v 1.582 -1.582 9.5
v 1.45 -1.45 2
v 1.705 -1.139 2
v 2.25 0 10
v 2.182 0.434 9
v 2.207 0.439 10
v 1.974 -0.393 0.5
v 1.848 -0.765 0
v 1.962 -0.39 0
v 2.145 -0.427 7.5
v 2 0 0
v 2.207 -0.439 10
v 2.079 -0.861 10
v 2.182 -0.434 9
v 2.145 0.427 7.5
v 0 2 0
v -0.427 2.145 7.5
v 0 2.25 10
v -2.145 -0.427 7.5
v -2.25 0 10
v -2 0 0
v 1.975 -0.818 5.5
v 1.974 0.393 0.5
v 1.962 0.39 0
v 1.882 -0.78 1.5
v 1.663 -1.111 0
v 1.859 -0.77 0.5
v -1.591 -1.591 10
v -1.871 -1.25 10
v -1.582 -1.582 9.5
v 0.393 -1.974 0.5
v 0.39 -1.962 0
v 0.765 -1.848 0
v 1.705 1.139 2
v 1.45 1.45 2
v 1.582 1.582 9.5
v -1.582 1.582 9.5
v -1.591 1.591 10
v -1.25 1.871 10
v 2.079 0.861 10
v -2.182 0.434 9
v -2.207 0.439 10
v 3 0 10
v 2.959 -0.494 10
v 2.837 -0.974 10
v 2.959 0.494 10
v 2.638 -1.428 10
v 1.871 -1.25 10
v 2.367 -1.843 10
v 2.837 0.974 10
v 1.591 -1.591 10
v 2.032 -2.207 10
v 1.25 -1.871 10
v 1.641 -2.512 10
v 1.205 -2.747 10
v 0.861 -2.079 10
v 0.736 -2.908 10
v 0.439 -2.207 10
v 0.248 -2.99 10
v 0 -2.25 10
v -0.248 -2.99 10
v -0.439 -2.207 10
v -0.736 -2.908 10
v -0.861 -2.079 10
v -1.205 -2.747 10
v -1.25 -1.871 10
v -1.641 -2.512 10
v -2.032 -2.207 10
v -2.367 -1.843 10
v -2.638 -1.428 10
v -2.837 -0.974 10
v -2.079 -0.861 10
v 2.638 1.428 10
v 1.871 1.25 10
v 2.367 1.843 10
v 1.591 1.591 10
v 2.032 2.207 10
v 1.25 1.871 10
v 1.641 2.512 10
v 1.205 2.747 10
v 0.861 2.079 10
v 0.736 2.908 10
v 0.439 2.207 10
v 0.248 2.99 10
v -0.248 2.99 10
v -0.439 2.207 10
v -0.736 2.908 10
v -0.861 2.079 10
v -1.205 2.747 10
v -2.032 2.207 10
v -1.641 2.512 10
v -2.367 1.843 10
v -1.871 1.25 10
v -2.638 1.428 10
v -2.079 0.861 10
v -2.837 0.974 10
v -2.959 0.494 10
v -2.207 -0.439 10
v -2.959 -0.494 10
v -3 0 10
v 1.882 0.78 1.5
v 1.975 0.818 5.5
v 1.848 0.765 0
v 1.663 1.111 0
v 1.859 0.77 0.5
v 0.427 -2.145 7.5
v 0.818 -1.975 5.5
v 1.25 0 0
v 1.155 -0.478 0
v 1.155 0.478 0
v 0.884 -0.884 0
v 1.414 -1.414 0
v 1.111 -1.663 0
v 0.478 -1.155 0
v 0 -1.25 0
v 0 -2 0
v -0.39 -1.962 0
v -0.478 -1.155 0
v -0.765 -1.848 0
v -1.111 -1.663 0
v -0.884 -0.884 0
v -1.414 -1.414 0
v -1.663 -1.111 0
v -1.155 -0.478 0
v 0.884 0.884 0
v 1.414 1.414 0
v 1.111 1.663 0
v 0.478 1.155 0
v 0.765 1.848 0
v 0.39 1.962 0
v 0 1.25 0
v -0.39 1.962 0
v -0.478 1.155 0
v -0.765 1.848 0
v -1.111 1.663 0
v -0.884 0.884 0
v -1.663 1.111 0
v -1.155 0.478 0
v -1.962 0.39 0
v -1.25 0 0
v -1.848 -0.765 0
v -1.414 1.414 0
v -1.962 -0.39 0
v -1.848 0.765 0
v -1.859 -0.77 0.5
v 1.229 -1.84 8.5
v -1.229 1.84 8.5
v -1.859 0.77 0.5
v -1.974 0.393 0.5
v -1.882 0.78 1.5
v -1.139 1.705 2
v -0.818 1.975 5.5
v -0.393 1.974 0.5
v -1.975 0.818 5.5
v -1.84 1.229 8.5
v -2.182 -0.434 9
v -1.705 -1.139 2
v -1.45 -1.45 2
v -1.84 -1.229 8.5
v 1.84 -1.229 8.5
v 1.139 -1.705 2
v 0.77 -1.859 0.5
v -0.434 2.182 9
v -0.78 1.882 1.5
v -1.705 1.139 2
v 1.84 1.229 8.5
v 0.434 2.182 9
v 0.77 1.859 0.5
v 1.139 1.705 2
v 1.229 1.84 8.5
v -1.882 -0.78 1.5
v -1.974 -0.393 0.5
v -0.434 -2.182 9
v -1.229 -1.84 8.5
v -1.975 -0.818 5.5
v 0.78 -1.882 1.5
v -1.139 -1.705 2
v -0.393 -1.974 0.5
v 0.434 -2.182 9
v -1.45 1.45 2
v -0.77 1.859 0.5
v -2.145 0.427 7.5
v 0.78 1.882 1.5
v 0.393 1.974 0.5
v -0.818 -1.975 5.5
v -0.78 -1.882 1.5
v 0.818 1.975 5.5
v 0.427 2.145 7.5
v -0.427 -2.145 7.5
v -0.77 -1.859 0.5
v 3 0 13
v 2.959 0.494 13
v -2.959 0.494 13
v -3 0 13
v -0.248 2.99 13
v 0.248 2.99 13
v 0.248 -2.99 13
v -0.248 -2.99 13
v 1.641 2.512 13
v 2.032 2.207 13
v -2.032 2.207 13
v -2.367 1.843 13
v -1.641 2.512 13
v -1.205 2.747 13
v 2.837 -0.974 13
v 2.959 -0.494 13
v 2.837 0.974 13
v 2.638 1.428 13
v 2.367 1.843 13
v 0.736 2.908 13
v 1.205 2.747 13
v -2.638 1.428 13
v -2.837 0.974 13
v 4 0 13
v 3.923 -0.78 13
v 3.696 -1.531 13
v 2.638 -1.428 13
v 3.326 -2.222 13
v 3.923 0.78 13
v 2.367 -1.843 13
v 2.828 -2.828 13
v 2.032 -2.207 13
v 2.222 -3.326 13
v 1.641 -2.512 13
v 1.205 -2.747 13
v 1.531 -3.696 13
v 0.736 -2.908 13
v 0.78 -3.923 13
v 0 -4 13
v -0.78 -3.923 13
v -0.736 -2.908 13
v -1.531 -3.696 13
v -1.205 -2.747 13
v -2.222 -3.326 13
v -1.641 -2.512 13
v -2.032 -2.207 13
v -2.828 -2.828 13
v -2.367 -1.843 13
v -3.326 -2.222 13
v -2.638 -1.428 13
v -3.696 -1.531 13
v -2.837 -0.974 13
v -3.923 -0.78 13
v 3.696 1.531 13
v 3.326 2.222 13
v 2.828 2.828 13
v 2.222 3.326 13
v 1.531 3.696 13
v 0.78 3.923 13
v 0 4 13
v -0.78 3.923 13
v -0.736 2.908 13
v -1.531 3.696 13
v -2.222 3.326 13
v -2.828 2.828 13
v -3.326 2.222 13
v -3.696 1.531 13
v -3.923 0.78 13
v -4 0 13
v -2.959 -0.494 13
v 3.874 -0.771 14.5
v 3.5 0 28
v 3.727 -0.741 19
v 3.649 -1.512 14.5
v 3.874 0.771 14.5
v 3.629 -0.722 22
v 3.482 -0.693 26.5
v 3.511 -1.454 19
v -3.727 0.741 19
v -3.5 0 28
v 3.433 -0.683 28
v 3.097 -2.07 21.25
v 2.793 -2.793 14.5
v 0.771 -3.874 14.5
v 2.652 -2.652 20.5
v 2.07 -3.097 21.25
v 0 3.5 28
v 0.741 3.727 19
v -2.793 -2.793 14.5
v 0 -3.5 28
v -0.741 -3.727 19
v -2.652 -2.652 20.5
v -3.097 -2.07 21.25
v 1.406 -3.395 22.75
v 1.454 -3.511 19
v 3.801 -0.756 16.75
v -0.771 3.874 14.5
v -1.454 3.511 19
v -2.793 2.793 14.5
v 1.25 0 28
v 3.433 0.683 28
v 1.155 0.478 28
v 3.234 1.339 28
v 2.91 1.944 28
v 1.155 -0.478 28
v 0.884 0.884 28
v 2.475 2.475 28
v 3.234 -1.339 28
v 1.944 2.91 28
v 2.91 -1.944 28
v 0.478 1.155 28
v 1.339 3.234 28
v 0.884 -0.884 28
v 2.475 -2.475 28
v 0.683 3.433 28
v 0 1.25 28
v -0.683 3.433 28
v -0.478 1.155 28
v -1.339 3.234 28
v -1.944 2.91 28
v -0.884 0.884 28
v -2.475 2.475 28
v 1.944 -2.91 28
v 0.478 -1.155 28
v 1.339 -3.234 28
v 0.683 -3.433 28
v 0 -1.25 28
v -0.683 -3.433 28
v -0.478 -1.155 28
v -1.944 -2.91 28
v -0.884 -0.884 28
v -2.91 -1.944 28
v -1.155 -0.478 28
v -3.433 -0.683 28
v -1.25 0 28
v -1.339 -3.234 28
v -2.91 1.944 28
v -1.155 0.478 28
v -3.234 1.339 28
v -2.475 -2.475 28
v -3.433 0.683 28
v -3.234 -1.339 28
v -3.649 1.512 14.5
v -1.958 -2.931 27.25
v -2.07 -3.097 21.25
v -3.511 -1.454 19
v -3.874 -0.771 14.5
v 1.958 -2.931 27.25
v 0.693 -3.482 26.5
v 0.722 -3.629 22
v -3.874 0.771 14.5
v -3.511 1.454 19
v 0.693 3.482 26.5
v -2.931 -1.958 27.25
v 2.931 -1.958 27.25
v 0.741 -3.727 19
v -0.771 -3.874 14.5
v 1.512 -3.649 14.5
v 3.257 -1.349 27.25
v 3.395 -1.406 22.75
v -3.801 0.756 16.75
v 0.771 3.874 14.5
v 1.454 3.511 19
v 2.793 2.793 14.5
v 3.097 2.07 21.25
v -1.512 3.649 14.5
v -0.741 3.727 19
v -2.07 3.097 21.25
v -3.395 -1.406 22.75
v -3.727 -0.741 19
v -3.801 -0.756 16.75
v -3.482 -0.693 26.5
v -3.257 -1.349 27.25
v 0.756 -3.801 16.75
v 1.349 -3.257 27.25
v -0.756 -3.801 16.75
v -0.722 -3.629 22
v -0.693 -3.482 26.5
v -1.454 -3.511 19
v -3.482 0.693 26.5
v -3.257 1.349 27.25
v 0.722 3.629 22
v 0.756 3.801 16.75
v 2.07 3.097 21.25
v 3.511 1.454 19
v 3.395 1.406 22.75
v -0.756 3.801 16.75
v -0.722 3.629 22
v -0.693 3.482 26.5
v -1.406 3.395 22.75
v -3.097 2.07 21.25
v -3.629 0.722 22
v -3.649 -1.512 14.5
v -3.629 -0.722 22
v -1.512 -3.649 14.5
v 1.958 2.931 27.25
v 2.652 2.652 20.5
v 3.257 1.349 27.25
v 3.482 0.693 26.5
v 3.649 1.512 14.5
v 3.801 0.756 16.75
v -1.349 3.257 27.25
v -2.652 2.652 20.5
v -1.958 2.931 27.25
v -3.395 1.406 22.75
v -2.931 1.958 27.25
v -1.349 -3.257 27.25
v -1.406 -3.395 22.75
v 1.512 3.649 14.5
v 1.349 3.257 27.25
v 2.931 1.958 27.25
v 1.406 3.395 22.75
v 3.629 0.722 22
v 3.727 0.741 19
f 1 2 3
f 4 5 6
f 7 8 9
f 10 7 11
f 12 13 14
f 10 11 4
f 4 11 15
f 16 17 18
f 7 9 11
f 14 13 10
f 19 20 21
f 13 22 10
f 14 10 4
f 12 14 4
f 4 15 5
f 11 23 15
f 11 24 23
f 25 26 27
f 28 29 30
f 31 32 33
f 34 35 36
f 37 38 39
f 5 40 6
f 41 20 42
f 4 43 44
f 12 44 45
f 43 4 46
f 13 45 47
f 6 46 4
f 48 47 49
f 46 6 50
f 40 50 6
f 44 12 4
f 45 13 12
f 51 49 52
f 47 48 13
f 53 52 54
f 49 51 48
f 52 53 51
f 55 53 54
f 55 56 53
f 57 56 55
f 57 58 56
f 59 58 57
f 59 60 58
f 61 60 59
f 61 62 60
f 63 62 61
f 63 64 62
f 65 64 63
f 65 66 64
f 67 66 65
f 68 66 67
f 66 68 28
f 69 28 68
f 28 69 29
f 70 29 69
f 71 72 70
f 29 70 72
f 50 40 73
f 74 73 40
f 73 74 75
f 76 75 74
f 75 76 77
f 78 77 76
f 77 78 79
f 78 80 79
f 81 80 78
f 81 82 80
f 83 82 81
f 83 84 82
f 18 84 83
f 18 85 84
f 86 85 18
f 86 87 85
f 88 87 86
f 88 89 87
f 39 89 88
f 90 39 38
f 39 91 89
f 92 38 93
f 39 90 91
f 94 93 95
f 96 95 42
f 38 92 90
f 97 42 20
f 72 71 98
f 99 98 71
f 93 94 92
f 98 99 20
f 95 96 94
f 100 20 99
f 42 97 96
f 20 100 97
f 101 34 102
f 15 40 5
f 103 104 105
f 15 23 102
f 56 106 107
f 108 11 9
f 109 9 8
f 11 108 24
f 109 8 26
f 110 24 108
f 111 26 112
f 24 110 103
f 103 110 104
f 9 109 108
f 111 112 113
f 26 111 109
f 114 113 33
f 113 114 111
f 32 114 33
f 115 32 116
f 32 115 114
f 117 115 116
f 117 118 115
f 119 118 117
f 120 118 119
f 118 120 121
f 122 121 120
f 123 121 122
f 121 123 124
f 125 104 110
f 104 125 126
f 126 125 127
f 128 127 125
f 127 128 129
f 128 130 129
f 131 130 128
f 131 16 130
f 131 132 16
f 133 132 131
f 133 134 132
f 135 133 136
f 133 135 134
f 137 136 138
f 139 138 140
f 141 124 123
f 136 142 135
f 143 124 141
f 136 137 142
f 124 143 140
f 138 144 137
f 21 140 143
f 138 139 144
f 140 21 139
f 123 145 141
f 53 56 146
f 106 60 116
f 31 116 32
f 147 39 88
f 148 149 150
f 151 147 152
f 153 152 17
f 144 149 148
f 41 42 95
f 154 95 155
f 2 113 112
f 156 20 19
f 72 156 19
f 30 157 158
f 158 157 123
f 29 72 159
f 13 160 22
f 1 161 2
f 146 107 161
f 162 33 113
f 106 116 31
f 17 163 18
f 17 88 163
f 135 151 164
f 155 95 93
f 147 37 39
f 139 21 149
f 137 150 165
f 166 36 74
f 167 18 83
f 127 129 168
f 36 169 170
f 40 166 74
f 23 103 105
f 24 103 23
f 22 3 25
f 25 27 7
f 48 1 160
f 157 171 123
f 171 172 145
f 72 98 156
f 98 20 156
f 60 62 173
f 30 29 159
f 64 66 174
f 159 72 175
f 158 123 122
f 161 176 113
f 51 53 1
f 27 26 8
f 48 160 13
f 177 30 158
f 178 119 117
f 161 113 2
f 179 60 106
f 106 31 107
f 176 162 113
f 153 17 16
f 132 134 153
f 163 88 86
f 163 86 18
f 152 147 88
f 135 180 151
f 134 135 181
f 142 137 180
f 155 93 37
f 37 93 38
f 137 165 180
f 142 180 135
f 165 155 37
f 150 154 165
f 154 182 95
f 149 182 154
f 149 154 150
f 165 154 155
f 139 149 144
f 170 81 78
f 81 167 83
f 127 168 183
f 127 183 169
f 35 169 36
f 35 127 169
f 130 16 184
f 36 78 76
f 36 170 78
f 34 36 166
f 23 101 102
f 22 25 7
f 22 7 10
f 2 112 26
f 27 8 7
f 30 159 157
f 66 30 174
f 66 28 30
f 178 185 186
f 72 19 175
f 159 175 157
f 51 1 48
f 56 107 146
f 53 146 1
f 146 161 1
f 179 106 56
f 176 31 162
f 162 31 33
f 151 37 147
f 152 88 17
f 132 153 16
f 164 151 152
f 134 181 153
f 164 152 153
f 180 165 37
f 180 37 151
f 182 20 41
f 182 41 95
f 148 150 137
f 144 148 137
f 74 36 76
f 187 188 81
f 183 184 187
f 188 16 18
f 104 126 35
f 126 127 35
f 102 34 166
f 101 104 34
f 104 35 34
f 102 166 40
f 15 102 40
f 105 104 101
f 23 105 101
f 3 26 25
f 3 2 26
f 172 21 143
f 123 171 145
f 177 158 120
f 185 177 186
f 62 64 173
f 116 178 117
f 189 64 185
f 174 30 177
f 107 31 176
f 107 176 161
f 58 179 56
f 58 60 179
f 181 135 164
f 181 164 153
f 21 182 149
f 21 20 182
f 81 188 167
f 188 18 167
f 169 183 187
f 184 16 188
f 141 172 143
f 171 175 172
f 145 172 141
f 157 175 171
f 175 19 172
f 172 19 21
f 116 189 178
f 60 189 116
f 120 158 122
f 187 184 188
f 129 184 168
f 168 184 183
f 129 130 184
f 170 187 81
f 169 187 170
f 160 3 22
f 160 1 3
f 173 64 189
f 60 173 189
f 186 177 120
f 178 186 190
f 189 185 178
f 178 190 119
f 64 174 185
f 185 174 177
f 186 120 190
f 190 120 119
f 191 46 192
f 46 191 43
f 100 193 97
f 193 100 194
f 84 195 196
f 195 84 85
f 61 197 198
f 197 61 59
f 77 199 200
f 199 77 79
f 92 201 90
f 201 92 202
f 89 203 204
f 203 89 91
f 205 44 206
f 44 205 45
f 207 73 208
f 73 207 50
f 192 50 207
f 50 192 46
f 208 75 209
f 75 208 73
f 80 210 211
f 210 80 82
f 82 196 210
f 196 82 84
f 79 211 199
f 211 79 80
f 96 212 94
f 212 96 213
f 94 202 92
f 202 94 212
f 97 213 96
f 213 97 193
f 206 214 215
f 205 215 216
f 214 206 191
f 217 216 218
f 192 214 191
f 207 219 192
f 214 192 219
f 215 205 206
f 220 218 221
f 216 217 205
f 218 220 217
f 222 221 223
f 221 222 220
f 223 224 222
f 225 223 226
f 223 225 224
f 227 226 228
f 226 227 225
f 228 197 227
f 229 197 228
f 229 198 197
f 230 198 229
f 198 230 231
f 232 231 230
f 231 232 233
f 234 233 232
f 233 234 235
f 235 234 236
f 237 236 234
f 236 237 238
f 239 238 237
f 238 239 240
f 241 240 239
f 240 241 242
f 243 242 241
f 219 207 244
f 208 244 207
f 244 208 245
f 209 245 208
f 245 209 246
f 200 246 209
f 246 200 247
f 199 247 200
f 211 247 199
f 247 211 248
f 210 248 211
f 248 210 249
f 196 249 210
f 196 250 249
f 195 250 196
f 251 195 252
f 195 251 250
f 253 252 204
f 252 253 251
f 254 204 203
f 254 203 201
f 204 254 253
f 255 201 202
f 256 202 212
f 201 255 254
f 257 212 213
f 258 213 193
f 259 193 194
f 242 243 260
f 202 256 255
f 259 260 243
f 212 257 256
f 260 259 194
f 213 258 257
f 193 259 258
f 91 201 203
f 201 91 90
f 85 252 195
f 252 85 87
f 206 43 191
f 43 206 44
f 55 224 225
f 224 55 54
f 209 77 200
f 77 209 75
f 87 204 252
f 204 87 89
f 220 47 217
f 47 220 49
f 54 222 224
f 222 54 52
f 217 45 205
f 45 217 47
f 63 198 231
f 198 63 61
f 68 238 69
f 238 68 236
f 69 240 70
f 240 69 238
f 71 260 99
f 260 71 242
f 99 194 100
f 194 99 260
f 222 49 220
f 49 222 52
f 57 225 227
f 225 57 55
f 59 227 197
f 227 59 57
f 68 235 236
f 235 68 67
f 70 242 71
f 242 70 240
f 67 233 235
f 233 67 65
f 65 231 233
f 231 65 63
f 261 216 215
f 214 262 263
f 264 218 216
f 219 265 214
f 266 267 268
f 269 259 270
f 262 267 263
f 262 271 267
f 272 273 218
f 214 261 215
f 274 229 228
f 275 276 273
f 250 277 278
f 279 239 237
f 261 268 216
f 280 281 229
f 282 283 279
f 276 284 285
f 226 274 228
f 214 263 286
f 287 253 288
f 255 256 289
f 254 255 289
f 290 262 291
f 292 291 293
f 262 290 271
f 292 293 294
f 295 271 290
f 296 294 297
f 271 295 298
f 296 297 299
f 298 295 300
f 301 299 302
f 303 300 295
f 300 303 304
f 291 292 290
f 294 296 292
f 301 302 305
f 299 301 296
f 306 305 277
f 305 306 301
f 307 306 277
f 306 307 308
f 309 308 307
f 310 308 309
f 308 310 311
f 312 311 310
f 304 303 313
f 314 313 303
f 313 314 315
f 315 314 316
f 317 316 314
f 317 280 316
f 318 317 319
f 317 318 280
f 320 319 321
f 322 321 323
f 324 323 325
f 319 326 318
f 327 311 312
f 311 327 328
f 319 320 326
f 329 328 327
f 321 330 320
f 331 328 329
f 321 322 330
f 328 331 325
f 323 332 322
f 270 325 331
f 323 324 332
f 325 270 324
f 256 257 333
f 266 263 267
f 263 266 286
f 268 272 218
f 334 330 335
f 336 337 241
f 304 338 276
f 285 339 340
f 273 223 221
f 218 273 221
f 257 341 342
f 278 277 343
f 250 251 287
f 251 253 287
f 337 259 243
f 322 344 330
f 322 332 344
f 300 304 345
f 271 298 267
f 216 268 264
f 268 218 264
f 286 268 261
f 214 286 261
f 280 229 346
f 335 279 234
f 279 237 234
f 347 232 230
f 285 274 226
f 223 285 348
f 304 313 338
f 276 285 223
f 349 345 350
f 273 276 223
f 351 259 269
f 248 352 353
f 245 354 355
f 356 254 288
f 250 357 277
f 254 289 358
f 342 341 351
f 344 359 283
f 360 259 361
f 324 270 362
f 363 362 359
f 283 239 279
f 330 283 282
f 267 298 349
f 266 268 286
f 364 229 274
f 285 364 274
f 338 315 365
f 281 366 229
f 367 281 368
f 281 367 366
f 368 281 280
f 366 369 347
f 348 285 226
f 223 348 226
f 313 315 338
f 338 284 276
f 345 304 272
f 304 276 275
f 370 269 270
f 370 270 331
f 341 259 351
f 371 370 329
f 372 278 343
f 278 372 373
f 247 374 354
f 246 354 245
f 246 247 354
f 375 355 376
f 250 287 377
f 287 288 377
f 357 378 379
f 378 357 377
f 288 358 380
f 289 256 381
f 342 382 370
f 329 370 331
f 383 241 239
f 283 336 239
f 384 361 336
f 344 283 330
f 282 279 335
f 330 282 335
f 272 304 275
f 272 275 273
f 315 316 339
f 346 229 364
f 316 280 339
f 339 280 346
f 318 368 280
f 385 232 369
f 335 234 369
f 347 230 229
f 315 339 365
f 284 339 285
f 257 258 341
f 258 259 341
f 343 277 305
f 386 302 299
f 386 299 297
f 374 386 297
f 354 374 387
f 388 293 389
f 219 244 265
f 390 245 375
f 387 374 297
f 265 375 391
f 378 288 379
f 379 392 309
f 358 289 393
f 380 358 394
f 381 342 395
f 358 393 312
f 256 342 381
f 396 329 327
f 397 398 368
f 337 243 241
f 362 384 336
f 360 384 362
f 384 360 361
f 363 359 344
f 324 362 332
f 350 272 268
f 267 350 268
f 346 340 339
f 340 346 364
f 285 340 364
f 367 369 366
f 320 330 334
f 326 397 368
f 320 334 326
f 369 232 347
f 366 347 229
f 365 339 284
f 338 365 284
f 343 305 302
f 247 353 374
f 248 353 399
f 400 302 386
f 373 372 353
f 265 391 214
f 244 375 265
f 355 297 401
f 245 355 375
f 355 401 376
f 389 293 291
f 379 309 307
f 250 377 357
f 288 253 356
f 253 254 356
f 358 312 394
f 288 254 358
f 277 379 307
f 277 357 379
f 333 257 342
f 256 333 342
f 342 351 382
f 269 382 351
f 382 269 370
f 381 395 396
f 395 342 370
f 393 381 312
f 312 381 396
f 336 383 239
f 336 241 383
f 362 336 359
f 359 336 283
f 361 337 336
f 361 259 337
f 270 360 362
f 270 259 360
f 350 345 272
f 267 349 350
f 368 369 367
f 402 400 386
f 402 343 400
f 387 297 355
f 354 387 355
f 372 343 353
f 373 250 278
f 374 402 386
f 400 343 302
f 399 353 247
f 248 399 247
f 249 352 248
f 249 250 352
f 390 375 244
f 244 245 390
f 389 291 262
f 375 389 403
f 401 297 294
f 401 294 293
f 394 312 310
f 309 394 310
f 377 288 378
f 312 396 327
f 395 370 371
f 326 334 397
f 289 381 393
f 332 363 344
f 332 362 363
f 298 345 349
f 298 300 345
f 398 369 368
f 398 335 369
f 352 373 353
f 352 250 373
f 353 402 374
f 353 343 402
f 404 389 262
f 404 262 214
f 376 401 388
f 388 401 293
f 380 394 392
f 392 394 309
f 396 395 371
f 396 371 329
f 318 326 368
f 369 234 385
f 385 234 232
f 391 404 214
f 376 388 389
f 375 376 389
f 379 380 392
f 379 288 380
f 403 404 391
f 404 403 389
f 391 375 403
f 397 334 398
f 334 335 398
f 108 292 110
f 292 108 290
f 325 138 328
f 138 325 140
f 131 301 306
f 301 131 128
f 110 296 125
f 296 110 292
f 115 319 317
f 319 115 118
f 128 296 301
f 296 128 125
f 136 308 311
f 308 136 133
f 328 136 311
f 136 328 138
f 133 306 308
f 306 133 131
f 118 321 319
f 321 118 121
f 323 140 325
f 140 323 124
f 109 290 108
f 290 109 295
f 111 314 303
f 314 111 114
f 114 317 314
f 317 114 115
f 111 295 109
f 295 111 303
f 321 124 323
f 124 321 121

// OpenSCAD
$fa = 1;
$fs = 0.5;

difference() {

    union() {

        linear_extrude(height = 10, convexity = 10, slices = 20, scale = 4.5/4, $fn = 32)
        circle(r=2);

        translate([0, 0, 10])
        cylinder(r=3, h=3);

        translate([0, 0, 10 + 3])
        linear_extrude(height = 15, convexity = 10, slices = 20, scale = 7/8, $fn = 32)
        circle(r=4);

    }
    
    translate([0, 0, -1])
    cylinder(r=1.25, h=30);

}
